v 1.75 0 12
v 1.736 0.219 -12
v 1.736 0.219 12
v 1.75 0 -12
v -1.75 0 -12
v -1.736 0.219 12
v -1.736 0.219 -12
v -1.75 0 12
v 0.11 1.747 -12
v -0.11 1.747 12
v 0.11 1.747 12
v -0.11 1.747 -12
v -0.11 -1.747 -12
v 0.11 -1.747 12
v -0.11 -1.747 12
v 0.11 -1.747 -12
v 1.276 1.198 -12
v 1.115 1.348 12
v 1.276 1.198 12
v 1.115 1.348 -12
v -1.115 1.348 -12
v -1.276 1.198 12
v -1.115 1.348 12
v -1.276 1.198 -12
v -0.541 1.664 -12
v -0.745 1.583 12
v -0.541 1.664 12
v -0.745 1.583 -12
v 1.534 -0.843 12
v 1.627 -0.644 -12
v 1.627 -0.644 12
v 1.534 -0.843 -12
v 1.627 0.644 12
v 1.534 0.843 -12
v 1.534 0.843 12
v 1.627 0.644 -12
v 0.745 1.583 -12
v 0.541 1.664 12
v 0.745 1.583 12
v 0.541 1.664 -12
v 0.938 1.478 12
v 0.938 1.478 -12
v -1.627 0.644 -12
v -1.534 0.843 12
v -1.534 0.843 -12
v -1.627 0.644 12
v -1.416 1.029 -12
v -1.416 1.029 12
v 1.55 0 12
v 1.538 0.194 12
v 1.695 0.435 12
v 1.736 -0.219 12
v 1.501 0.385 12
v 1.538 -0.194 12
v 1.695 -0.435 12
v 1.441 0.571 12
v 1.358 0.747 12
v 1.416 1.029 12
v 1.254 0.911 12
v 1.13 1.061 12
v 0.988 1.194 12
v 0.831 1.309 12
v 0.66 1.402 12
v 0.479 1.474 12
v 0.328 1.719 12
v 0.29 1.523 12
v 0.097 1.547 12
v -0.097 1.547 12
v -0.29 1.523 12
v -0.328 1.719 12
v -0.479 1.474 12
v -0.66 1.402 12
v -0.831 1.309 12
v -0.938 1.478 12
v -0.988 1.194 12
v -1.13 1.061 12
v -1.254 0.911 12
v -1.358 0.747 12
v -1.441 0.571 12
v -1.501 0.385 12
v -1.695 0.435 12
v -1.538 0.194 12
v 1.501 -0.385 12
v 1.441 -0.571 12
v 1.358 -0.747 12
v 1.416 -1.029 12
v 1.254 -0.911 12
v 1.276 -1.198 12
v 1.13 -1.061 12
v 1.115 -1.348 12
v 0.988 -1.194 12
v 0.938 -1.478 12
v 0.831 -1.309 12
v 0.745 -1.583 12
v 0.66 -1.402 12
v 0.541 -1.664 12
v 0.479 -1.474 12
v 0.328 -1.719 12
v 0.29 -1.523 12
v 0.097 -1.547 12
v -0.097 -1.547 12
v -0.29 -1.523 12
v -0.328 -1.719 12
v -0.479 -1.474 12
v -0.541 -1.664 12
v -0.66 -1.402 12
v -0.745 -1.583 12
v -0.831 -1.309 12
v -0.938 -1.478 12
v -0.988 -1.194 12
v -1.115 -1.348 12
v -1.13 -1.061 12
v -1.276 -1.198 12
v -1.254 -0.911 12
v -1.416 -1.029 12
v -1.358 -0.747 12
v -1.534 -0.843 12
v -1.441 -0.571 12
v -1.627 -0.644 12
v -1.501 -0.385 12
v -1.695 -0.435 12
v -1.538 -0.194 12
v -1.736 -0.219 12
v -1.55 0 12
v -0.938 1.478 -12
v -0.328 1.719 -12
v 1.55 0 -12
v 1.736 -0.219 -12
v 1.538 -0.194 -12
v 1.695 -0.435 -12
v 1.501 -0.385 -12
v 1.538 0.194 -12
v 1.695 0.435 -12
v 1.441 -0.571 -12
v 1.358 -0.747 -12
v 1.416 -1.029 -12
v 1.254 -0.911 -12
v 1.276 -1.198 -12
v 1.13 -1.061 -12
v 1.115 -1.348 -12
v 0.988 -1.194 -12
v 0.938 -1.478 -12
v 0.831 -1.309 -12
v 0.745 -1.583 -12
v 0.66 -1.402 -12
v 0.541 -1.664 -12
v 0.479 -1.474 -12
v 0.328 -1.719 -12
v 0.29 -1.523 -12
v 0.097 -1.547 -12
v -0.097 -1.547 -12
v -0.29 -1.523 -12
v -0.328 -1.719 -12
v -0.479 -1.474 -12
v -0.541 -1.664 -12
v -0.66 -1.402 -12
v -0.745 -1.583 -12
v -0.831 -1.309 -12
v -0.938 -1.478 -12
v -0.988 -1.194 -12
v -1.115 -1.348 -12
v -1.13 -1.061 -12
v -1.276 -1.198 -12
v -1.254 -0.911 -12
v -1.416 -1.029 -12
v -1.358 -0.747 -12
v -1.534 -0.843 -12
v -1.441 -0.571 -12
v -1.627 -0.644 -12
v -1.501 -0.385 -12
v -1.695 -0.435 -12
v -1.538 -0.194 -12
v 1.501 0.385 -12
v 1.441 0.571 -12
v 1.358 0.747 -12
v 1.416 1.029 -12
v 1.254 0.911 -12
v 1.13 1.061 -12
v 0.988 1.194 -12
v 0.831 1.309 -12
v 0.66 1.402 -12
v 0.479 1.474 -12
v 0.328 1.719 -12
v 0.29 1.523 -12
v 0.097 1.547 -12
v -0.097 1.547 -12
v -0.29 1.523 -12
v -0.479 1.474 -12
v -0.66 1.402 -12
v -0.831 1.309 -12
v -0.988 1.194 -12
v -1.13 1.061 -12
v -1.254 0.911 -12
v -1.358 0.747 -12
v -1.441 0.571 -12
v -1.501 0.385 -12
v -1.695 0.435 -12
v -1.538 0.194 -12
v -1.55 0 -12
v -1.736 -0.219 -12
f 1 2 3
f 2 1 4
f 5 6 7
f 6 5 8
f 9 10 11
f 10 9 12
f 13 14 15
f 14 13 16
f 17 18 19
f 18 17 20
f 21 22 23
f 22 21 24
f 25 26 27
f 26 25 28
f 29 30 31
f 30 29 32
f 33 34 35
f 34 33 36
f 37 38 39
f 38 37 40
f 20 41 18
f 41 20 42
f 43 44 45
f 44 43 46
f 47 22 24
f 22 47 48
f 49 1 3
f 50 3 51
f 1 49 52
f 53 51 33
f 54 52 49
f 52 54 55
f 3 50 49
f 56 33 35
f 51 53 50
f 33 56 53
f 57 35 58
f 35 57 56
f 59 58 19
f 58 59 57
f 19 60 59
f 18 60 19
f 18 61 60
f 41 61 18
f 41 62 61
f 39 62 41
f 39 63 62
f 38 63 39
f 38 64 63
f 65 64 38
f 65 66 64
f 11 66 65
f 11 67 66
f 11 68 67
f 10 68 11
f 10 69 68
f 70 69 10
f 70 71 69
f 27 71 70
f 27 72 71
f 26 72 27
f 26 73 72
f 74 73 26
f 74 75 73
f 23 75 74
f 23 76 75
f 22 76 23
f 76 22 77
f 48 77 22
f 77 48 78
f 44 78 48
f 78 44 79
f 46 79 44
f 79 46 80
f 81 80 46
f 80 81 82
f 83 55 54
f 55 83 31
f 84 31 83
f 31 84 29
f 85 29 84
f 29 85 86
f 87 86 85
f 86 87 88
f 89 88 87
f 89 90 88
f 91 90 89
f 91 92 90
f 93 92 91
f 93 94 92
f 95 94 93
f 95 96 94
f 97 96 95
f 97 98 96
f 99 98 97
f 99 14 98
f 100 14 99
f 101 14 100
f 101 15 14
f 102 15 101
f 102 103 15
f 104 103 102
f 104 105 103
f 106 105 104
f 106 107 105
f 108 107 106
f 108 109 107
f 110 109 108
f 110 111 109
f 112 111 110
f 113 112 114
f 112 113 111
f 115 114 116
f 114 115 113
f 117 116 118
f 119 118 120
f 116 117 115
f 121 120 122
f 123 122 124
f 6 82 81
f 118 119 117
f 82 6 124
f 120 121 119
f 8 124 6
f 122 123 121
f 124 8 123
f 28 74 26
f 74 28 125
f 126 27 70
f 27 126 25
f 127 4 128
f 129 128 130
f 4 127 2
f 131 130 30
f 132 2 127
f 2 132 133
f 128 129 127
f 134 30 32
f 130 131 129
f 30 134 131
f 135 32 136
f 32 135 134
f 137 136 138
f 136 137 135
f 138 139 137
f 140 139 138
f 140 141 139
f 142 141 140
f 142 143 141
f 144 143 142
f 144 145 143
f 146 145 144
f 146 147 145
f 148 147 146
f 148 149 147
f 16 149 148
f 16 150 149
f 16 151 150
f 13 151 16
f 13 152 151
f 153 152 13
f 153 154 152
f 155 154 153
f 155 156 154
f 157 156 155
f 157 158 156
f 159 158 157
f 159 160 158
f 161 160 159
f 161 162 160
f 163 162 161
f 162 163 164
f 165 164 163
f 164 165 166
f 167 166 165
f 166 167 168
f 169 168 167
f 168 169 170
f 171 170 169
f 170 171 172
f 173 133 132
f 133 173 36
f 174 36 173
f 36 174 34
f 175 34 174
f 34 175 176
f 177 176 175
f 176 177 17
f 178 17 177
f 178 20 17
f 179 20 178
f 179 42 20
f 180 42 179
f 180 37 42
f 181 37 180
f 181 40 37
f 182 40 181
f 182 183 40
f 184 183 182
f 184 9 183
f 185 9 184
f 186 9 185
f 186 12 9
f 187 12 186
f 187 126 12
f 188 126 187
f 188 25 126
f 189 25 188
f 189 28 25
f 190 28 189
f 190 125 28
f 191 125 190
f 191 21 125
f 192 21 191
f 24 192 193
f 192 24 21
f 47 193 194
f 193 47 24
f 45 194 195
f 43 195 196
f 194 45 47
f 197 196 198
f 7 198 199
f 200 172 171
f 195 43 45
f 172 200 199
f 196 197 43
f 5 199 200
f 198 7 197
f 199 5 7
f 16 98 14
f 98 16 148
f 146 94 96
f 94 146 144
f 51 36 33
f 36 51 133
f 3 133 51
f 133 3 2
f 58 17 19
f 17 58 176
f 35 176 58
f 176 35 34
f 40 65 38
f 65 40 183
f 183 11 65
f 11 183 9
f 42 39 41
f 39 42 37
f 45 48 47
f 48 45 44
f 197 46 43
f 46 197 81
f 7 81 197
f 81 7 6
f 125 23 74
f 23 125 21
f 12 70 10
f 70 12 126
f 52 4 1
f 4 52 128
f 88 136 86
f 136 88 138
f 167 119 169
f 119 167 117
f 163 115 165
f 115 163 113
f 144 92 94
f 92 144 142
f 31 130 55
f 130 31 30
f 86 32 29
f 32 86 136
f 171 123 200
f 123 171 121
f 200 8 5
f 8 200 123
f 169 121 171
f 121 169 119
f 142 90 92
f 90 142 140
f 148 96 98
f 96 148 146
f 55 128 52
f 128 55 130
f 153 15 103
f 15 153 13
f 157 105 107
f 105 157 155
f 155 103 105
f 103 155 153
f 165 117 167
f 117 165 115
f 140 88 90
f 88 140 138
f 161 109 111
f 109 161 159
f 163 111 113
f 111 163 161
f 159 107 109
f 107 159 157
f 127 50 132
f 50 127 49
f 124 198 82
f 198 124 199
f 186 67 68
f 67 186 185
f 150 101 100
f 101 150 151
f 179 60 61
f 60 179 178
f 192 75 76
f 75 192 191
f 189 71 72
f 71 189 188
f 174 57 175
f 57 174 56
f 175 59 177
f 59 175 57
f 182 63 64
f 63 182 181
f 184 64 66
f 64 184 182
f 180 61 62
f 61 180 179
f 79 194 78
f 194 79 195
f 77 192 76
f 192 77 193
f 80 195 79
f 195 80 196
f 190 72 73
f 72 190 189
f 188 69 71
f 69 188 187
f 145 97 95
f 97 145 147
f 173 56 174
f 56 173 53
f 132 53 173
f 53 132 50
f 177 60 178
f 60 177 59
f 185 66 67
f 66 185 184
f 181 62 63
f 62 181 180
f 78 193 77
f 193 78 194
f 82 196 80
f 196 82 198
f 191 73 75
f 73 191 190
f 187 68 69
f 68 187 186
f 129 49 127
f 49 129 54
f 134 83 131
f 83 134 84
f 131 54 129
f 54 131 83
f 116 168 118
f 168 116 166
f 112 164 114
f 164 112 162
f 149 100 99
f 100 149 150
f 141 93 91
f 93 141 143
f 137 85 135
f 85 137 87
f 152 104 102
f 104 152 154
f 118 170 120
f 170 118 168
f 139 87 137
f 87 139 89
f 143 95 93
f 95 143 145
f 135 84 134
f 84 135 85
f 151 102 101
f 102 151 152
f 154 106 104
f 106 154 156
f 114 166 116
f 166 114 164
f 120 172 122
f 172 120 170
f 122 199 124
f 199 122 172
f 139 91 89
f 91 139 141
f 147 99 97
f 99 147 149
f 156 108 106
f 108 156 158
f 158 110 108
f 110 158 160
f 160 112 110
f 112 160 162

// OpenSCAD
$fn = 50;


difference() {
	union() {
		translate(v = [0, 0, -12.0000000000]) {
			cylinder(h = 24, r = 1.7500000000);
		}
	}
	union() {
		translate(v = [0, 0, -100.0000000000]) {
			cylinder(h = 200, r = 1.5500000000);
		}
	}
}
